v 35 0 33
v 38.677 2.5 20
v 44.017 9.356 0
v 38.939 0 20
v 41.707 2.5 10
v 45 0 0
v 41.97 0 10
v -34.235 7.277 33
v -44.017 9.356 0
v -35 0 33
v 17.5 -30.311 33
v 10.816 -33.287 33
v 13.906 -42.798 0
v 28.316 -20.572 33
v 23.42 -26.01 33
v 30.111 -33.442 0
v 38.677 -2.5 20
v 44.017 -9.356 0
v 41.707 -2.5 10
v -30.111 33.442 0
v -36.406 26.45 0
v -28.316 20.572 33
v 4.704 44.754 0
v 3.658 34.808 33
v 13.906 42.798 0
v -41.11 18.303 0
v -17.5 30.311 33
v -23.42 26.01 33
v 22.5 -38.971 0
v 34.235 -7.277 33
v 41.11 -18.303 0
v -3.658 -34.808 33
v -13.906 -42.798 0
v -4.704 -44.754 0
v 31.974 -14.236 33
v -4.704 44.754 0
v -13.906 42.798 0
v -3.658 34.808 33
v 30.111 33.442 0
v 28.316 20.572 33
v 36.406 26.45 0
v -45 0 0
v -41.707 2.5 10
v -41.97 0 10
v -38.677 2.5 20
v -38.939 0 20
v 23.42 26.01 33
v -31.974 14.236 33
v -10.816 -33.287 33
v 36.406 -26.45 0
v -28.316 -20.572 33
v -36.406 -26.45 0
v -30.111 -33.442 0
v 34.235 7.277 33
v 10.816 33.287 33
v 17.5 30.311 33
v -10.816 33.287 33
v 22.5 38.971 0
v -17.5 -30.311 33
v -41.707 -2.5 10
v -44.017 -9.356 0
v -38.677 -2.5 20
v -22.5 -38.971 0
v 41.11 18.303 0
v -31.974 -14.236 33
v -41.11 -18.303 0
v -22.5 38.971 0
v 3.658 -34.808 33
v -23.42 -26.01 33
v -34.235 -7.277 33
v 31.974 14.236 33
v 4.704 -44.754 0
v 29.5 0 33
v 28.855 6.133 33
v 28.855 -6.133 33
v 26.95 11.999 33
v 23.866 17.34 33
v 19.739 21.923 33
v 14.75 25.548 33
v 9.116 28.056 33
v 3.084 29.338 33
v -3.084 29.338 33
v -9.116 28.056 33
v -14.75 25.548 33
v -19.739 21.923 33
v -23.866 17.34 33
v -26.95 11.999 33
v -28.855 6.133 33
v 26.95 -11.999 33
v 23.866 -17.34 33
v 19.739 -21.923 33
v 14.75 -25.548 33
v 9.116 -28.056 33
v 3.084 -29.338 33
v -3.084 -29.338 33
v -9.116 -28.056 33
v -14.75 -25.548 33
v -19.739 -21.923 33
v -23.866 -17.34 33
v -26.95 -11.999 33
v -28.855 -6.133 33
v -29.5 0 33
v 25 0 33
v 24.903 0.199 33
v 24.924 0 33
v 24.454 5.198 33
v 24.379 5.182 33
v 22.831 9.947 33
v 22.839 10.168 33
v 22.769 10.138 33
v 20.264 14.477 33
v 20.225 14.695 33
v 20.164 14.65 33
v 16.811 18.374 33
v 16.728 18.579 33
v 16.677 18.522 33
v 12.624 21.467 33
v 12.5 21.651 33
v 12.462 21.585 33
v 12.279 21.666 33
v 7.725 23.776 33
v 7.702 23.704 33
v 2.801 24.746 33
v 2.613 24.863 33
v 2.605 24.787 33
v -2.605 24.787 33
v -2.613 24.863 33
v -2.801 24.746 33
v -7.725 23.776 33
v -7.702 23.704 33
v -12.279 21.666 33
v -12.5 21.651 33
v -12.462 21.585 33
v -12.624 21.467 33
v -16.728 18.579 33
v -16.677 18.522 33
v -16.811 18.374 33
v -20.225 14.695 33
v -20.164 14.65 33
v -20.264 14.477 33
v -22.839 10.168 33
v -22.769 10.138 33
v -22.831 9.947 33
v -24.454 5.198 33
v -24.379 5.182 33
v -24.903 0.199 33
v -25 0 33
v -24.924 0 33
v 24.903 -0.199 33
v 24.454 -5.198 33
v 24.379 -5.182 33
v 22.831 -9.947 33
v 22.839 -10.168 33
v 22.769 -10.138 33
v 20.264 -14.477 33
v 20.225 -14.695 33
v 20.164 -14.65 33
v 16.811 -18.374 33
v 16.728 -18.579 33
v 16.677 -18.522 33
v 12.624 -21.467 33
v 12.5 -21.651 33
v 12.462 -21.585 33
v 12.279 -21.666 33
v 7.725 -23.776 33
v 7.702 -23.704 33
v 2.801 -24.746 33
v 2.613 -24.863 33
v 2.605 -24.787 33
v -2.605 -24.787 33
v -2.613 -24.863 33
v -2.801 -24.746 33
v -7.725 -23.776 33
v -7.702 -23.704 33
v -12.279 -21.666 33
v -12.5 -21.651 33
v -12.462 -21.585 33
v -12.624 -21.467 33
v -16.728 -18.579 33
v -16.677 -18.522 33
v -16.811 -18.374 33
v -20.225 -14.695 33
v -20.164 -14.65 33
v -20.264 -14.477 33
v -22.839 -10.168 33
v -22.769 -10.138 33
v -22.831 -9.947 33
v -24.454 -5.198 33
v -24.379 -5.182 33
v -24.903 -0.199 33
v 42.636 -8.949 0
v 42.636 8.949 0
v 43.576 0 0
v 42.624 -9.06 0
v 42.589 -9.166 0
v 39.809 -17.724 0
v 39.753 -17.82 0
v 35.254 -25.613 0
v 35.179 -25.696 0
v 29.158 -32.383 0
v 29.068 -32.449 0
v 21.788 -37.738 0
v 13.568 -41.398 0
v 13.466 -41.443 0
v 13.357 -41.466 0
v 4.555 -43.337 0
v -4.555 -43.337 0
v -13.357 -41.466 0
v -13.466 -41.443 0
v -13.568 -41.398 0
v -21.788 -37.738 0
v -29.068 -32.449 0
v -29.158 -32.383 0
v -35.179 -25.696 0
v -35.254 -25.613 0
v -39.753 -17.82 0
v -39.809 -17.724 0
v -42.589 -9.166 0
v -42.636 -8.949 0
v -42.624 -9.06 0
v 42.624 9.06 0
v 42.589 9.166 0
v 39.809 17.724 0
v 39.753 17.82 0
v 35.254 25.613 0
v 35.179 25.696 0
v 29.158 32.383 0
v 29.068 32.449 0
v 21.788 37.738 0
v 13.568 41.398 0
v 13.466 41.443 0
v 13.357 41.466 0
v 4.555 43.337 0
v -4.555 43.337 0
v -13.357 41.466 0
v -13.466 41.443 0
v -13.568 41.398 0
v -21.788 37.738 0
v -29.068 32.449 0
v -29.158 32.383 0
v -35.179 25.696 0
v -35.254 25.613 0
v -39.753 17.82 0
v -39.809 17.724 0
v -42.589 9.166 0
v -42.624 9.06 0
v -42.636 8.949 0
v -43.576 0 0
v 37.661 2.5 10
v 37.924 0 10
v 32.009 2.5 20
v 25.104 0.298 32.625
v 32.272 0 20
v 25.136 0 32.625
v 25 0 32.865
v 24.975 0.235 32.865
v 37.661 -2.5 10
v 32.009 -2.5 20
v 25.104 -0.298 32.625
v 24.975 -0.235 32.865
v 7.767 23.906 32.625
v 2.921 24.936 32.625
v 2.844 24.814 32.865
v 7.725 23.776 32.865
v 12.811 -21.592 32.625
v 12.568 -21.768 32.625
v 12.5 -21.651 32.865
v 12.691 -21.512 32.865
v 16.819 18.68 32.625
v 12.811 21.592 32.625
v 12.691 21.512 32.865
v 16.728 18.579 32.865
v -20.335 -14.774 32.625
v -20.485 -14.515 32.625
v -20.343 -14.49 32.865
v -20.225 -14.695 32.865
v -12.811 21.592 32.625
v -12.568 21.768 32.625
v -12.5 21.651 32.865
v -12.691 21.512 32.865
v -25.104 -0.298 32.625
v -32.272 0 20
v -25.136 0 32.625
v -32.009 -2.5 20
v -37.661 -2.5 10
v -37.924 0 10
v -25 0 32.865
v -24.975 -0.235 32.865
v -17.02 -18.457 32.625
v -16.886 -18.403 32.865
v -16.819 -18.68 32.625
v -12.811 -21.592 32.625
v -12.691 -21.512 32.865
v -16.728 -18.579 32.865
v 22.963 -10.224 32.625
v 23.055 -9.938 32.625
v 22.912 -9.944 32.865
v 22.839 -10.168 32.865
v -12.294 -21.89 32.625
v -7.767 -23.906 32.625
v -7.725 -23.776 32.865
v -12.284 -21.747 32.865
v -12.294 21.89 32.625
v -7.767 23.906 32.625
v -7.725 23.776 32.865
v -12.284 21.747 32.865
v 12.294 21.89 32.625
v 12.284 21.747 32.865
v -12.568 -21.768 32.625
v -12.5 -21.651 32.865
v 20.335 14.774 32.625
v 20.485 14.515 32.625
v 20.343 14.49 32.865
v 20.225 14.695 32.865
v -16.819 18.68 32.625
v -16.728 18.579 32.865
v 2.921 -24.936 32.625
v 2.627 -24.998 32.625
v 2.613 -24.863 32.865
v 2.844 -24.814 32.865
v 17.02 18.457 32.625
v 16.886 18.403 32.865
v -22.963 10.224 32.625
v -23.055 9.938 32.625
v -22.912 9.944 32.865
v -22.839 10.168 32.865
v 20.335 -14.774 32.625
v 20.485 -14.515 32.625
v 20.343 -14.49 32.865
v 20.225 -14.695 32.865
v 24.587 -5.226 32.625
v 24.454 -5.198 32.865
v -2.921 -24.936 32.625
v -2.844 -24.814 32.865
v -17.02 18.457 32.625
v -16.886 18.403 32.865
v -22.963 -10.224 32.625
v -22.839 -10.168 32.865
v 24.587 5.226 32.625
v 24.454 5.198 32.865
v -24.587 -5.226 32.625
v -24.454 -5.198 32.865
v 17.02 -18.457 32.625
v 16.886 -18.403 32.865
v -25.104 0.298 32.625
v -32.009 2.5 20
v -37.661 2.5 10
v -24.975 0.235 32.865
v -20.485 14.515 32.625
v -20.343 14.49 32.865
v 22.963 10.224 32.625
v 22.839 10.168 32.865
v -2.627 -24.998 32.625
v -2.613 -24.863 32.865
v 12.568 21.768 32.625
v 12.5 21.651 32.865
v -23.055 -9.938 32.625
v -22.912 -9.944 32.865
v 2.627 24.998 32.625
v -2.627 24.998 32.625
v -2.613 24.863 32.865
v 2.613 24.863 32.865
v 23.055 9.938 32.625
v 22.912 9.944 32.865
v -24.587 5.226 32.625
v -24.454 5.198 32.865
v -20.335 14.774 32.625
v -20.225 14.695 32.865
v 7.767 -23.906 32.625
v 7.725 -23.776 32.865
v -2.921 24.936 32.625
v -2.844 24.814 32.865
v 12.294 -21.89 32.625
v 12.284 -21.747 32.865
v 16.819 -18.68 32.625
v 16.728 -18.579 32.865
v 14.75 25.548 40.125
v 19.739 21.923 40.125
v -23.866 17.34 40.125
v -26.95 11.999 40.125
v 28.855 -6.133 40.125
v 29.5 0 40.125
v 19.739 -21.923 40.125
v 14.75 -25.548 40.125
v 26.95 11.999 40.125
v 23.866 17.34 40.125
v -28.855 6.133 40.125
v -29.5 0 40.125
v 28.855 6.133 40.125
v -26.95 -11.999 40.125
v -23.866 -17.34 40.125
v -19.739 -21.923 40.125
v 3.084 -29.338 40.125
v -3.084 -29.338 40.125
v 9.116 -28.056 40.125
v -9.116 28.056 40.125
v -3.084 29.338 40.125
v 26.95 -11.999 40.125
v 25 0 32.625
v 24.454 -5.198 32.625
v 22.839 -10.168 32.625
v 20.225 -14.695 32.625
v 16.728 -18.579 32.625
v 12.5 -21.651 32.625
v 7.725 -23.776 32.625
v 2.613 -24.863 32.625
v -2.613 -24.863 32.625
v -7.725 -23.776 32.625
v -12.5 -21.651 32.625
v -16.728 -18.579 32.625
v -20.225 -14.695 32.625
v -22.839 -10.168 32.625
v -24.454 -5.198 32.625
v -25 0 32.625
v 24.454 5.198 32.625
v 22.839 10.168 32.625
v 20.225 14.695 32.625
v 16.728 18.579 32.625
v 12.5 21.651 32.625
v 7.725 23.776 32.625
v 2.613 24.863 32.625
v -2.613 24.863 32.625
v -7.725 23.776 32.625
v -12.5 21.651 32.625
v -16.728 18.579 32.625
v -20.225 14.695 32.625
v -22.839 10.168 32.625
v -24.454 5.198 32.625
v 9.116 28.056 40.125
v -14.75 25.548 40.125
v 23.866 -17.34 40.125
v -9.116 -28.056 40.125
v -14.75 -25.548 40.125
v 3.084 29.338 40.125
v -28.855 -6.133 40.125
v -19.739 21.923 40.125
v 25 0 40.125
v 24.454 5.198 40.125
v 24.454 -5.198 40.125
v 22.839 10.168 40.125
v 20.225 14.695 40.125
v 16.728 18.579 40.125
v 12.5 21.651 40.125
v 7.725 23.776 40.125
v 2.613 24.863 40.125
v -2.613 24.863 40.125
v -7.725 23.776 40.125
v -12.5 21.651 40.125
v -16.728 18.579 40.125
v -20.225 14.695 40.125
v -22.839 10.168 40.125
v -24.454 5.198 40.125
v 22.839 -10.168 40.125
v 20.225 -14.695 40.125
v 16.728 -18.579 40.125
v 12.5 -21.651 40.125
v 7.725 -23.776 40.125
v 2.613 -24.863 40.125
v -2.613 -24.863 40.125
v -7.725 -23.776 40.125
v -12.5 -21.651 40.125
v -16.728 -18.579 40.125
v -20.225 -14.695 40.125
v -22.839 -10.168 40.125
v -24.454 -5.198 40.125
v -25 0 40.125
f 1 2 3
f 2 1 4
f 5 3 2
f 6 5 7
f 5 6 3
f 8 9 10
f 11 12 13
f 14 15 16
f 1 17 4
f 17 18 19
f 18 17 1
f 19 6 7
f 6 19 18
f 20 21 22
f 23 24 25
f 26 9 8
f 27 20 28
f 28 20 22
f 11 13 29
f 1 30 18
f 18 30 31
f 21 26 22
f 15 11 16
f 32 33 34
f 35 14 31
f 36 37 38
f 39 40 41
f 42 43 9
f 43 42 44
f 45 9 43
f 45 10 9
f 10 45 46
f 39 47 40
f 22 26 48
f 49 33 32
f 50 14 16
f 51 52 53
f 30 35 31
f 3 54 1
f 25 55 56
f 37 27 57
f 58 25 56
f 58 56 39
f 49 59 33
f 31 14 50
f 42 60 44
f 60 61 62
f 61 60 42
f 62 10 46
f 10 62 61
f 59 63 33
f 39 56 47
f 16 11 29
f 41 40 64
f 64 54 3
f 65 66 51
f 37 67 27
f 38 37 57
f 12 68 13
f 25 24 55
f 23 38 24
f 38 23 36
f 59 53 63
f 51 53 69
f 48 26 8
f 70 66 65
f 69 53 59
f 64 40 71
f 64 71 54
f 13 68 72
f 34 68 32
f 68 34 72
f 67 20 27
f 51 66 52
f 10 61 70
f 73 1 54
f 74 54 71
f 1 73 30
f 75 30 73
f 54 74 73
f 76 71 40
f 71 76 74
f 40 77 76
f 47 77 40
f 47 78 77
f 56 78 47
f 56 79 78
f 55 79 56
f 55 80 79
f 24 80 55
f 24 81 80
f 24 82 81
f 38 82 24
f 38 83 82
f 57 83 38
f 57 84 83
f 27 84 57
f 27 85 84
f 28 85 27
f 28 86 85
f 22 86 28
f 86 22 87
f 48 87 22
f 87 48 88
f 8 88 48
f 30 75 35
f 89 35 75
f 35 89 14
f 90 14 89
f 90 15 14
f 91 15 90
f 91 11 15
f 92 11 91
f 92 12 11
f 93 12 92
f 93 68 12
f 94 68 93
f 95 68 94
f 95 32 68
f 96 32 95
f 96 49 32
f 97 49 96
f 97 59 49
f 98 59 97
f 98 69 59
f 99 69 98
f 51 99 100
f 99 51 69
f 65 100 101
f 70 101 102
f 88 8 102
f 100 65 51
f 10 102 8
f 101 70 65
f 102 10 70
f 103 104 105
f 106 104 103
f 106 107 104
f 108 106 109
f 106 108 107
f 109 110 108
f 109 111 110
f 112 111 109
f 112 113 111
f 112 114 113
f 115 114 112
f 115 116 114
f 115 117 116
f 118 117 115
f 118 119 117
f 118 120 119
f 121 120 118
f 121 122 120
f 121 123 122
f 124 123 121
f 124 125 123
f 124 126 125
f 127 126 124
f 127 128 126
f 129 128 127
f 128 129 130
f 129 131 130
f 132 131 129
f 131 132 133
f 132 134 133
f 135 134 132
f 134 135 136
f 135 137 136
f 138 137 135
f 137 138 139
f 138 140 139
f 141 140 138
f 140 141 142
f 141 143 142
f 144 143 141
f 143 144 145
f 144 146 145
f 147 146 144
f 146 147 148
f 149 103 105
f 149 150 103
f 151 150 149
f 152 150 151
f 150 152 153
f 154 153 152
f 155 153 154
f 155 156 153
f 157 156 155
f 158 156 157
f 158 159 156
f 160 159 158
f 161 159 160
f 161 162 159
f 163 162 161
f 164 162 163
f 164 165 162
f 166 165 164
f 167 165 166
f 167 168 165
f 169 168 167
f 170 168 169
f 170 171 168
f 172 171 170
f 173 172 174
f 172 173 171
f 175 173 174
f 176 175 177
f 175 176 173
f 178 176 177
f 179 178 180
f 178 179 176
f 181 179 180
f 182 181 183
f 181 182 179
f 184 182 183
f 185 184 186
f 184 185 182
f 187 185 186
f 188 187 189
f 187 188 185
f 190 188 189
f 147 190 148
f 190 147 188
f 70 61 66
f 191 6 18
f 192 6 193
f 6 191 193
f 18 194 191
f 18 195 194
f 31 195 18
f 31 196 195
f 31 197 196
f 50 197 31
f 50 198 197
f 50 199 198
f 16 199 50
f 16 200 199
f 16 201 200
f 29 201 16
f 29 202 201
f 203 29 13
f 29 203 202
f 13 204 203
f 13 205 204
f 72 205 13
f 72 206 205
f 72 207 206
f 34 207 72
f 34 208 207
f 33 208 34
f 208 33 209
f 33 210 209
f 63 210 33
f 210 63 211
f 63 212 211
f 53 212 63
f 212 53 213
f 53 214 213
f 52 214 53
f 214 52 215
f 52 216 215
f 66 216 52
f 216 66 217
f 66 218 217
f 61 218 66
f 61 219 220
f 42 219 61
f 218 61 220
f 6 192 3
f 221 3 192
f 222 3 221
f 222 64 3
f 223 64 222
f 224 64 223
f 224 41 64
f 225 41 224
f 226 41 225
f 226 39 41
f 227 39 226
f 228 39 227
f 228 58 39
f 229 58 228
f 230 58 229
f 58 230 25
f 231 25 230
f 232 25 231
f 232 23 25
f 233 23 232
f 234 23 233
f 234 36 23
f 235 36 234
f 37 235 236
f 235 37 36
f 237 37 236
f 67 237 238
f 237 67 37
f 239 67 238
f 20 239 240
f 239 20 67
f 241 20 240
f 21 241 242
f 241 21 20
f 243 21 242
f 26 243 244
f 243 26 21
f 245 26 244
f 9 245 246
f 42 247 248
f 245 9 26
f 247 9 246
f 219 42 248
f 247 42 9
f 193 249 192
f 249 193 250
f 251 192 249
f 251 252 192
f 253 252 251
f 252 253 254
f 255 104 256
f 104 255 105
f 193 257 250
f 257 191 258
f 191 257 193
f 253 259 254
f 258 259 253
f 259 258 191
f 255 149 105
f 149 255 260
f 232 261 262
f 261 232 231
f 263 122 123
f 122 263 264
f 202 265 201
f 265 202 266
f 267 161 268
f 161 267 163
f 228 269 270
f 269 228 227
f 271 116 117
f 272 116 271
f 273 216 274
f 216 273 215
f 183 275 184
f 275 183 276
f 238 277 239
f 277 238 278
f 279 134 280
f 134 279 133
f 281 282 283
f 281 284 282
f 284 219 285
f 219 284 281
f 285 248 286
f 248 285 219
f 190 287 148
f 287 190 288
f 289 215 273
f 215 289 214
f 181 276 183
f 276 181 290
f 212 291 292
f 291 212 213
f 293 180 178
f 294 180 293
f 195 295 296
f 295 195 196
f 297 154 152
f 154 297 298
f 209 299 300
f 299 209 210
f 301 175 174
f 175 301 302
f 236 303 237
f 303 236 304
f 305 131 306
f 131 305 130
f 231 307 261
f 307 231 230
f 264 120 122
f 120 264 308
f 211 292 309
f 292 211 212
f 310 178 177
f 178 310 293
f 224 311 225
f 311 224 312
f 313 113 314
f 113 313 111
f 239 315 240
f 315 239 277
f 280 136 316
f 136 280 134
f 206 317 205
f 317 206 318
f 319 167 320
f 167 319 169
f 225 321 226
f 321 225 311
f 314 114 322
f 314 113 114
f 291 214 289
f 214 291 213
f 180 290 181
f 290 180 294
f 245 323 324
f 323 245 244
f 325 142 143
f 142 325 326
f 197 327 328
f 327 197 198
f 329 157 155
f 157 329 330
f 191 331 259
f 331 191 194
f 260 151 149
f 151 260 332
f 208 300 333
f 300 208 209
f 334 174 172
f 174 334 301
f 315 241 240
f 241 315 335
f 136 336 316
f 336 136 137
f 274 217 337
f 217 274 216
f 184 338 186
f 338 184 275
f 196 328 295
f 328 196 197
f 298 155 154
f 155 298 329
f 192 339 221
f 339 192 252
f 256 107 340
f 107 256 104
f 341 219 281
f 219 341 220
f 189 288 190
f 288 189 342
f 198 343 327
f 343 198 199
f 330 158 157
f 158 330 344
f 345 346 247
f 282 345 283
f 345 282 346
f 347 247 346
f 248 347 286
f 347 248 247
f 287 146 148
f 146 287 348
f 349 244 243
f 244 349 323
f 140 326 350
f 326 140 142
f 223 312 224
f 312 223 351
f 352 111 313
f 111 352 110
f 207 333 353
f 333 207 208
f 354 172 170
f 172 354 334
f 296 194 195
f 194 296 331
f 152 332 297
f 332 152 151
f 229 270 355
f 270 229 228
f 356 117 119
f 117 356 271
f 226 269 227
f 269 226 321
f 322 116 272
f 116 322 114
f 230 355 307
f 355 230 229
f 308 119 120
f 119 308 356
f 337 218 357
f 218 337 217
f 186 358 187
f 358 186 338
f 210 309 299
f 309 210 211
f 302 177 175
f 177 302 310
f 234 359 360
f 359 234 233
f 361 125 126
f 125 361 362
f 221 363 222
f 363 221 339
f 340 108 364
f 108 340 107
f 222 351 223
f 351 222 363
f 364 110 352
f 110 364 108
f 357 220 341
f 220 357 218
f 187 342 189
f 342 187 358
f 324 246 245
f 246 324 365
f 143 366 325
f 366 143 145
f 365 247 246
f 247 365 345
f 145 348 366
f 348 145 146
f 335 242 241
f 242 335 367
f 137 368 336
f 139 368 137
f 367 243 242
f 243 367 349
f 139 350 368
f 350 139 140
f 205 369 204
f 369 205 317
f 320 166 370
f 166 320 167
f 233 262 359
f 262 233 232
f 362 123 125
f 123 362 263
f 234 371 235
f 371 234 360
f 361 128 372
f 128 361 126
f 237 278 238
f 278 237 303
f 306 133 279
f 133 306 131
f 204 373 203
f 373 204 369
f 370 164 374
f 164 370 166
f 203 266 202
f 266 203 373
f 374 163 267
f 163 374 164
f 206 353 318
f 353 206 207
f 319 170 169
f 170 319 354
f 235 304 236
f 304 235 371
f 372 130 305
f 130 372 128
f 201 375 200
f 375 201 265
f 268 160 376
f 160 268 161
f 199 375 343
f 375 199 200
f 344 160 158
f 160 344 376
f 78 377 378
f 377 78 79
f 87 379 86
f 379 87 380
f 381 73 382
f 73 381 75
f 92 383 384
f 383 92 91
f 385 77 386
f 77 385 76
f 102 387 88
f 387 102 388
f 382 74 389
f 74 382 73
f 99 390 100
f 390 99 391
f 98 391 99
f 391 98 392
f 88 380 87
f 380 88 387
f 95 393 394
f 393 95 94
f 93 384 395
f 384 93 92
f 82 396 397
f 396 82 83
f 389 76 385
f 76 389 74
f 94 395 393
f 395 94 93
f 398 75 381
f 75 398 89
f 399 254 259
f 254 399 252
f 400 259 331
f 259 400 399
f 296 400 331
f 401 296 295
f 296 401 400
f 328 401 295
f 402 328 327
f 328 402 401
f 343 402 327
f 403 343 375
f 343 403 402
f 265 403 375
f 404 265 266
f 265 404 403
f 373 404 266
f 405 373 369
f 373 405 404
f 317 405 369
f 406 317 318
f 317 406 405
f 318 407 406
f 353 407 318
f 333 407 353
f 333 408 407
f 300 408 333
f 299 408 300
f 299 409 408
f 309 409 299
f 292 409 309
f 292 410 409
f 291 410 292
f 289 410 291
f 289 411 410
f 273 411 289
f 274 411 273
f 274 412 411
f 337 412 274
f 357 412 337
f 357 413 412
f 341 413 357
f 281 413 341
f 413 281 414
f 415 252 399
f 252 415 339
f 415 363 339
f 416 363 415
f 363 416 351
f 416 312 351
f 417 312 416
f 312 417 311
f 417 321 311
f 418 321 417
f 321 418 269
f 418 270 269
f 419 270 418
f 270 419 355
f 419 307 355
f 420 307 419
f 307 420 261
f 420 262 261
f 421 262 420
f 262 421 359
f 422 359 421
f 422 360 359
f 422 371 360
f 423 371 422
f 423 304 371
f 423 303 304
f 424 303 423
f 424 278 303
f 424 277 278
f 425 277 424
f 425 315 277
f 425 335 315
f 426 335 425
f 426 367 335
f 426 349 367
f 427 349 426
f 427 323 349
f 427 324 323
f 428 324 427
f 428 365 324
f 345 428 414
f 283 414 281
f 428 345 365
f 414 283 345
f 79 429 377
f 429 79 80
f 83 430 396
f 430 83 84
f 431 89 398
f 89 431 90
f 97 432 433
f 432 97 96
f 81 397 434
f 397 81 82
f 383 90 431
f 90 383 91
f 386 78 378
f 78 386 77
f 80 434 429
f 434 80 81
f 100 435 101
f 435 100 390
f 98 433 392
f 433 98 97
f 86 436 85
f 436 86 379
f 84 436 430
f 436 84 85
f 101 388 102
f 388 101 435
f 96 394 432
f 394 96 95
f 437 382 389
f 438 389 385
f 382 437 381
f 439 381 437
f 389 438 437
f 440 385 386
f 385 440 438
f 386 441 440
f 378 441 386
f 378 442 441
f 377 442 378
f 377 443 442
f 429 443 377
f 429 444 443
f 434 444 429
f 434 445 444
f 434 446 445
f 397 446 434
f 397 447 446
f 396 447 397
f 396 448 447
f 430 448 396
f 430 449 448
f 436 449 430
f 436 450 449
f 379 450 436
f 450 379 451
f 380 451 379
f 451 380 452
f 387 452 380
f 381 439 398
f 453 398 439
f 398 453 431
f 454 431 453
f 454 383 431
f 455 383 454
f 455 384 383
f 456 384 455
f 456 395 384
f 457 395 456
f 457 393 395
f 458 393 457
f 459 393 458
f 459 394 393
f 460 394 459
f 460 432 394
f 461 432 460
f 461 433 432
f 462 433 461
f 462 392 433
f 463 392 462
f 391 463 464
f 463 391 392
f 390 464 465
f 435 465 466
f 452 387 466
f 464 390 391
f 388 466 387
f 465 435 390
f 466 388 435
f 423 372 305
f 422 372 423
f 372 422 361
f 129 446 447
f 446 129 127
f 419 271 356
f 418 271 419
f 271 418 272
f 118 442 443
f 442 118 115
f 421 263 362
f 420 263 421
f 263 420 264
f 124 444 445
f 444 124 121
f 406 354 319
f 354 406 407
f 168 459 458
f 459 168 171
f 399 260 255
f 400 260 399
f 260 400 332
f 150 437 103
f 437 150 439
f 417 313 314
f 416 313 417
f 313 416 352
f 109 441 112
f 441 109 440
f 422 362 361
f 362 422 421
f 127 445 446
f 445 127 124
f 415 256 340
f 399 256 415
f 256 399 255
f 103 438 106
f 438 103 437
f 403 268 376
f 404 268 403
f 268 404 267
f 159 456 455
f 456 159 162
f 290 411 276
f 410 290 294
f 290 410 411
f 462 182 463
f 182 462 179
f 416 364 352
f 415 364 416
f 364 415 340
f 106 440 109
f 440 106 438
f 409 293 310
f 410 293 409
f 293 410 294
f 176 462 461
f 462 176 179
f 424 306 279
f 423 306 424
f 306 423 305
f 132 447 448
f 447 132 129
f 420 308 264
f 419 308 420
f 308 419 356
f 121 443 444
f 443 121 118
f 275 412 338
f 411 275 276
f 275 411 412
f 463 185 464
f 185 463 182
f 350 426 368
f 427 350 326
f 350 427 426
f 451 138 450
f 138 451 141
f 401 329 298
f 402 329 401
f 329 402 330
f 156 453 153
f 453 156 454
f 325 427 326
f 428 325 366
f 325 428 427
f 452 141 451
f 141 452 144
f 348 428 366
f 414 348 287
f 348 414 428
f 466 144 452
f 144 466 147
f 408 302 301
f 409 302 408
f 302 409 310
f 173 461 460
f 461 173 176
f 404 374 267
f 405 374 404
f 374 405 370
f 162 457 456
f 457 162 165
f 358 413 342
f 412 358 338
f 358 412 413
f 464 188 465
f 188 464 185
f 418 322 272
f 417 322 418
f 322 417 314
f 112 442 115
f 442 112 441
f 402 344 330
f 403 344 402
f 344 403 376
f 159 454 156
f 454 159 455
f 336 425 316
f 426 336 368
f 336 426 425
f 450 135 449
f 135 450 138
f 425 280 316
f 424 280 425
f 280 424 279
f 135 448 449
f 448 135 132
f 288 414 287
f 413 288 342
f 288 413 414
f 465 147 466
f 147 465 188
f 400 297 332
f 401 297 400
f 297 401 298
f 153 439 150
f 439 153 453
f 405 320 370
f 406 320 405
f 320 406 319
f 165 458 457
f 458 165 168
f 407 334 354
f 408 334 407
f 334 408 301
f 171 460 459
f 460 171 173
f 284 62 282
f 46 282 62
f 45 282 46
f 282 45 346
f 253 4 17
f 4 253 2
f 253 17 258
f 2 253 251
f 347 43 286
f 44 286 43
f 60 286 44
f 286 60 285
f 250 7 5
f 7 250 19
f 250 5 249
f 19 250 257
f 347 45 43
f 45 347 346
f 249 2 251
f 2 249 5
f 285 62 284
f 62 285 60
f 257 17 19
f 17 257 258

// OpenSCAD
// USe this one

difference() {
    scale([.5, .5, .75]) {
  difference() {
    union() {
 
        cylinder(44, 90, 70);
        translate([0, 0, 42]) { 
            cylinder(2, 70, 70);
        }
    }
    translate([0, 0, -1]) { 
        cylinder(46, 88, 49);
    }
}
difference() {
    translate([0, 0, 43.5]) {
        cylinder(10, 59, 59);
    } 
    translate([0, 0, 42]) { 
        cylinder(25, 50, 50);
    }
}
}
translate([0, 0, 15]) {
    cube([200, 5, 10], true);
}
}
